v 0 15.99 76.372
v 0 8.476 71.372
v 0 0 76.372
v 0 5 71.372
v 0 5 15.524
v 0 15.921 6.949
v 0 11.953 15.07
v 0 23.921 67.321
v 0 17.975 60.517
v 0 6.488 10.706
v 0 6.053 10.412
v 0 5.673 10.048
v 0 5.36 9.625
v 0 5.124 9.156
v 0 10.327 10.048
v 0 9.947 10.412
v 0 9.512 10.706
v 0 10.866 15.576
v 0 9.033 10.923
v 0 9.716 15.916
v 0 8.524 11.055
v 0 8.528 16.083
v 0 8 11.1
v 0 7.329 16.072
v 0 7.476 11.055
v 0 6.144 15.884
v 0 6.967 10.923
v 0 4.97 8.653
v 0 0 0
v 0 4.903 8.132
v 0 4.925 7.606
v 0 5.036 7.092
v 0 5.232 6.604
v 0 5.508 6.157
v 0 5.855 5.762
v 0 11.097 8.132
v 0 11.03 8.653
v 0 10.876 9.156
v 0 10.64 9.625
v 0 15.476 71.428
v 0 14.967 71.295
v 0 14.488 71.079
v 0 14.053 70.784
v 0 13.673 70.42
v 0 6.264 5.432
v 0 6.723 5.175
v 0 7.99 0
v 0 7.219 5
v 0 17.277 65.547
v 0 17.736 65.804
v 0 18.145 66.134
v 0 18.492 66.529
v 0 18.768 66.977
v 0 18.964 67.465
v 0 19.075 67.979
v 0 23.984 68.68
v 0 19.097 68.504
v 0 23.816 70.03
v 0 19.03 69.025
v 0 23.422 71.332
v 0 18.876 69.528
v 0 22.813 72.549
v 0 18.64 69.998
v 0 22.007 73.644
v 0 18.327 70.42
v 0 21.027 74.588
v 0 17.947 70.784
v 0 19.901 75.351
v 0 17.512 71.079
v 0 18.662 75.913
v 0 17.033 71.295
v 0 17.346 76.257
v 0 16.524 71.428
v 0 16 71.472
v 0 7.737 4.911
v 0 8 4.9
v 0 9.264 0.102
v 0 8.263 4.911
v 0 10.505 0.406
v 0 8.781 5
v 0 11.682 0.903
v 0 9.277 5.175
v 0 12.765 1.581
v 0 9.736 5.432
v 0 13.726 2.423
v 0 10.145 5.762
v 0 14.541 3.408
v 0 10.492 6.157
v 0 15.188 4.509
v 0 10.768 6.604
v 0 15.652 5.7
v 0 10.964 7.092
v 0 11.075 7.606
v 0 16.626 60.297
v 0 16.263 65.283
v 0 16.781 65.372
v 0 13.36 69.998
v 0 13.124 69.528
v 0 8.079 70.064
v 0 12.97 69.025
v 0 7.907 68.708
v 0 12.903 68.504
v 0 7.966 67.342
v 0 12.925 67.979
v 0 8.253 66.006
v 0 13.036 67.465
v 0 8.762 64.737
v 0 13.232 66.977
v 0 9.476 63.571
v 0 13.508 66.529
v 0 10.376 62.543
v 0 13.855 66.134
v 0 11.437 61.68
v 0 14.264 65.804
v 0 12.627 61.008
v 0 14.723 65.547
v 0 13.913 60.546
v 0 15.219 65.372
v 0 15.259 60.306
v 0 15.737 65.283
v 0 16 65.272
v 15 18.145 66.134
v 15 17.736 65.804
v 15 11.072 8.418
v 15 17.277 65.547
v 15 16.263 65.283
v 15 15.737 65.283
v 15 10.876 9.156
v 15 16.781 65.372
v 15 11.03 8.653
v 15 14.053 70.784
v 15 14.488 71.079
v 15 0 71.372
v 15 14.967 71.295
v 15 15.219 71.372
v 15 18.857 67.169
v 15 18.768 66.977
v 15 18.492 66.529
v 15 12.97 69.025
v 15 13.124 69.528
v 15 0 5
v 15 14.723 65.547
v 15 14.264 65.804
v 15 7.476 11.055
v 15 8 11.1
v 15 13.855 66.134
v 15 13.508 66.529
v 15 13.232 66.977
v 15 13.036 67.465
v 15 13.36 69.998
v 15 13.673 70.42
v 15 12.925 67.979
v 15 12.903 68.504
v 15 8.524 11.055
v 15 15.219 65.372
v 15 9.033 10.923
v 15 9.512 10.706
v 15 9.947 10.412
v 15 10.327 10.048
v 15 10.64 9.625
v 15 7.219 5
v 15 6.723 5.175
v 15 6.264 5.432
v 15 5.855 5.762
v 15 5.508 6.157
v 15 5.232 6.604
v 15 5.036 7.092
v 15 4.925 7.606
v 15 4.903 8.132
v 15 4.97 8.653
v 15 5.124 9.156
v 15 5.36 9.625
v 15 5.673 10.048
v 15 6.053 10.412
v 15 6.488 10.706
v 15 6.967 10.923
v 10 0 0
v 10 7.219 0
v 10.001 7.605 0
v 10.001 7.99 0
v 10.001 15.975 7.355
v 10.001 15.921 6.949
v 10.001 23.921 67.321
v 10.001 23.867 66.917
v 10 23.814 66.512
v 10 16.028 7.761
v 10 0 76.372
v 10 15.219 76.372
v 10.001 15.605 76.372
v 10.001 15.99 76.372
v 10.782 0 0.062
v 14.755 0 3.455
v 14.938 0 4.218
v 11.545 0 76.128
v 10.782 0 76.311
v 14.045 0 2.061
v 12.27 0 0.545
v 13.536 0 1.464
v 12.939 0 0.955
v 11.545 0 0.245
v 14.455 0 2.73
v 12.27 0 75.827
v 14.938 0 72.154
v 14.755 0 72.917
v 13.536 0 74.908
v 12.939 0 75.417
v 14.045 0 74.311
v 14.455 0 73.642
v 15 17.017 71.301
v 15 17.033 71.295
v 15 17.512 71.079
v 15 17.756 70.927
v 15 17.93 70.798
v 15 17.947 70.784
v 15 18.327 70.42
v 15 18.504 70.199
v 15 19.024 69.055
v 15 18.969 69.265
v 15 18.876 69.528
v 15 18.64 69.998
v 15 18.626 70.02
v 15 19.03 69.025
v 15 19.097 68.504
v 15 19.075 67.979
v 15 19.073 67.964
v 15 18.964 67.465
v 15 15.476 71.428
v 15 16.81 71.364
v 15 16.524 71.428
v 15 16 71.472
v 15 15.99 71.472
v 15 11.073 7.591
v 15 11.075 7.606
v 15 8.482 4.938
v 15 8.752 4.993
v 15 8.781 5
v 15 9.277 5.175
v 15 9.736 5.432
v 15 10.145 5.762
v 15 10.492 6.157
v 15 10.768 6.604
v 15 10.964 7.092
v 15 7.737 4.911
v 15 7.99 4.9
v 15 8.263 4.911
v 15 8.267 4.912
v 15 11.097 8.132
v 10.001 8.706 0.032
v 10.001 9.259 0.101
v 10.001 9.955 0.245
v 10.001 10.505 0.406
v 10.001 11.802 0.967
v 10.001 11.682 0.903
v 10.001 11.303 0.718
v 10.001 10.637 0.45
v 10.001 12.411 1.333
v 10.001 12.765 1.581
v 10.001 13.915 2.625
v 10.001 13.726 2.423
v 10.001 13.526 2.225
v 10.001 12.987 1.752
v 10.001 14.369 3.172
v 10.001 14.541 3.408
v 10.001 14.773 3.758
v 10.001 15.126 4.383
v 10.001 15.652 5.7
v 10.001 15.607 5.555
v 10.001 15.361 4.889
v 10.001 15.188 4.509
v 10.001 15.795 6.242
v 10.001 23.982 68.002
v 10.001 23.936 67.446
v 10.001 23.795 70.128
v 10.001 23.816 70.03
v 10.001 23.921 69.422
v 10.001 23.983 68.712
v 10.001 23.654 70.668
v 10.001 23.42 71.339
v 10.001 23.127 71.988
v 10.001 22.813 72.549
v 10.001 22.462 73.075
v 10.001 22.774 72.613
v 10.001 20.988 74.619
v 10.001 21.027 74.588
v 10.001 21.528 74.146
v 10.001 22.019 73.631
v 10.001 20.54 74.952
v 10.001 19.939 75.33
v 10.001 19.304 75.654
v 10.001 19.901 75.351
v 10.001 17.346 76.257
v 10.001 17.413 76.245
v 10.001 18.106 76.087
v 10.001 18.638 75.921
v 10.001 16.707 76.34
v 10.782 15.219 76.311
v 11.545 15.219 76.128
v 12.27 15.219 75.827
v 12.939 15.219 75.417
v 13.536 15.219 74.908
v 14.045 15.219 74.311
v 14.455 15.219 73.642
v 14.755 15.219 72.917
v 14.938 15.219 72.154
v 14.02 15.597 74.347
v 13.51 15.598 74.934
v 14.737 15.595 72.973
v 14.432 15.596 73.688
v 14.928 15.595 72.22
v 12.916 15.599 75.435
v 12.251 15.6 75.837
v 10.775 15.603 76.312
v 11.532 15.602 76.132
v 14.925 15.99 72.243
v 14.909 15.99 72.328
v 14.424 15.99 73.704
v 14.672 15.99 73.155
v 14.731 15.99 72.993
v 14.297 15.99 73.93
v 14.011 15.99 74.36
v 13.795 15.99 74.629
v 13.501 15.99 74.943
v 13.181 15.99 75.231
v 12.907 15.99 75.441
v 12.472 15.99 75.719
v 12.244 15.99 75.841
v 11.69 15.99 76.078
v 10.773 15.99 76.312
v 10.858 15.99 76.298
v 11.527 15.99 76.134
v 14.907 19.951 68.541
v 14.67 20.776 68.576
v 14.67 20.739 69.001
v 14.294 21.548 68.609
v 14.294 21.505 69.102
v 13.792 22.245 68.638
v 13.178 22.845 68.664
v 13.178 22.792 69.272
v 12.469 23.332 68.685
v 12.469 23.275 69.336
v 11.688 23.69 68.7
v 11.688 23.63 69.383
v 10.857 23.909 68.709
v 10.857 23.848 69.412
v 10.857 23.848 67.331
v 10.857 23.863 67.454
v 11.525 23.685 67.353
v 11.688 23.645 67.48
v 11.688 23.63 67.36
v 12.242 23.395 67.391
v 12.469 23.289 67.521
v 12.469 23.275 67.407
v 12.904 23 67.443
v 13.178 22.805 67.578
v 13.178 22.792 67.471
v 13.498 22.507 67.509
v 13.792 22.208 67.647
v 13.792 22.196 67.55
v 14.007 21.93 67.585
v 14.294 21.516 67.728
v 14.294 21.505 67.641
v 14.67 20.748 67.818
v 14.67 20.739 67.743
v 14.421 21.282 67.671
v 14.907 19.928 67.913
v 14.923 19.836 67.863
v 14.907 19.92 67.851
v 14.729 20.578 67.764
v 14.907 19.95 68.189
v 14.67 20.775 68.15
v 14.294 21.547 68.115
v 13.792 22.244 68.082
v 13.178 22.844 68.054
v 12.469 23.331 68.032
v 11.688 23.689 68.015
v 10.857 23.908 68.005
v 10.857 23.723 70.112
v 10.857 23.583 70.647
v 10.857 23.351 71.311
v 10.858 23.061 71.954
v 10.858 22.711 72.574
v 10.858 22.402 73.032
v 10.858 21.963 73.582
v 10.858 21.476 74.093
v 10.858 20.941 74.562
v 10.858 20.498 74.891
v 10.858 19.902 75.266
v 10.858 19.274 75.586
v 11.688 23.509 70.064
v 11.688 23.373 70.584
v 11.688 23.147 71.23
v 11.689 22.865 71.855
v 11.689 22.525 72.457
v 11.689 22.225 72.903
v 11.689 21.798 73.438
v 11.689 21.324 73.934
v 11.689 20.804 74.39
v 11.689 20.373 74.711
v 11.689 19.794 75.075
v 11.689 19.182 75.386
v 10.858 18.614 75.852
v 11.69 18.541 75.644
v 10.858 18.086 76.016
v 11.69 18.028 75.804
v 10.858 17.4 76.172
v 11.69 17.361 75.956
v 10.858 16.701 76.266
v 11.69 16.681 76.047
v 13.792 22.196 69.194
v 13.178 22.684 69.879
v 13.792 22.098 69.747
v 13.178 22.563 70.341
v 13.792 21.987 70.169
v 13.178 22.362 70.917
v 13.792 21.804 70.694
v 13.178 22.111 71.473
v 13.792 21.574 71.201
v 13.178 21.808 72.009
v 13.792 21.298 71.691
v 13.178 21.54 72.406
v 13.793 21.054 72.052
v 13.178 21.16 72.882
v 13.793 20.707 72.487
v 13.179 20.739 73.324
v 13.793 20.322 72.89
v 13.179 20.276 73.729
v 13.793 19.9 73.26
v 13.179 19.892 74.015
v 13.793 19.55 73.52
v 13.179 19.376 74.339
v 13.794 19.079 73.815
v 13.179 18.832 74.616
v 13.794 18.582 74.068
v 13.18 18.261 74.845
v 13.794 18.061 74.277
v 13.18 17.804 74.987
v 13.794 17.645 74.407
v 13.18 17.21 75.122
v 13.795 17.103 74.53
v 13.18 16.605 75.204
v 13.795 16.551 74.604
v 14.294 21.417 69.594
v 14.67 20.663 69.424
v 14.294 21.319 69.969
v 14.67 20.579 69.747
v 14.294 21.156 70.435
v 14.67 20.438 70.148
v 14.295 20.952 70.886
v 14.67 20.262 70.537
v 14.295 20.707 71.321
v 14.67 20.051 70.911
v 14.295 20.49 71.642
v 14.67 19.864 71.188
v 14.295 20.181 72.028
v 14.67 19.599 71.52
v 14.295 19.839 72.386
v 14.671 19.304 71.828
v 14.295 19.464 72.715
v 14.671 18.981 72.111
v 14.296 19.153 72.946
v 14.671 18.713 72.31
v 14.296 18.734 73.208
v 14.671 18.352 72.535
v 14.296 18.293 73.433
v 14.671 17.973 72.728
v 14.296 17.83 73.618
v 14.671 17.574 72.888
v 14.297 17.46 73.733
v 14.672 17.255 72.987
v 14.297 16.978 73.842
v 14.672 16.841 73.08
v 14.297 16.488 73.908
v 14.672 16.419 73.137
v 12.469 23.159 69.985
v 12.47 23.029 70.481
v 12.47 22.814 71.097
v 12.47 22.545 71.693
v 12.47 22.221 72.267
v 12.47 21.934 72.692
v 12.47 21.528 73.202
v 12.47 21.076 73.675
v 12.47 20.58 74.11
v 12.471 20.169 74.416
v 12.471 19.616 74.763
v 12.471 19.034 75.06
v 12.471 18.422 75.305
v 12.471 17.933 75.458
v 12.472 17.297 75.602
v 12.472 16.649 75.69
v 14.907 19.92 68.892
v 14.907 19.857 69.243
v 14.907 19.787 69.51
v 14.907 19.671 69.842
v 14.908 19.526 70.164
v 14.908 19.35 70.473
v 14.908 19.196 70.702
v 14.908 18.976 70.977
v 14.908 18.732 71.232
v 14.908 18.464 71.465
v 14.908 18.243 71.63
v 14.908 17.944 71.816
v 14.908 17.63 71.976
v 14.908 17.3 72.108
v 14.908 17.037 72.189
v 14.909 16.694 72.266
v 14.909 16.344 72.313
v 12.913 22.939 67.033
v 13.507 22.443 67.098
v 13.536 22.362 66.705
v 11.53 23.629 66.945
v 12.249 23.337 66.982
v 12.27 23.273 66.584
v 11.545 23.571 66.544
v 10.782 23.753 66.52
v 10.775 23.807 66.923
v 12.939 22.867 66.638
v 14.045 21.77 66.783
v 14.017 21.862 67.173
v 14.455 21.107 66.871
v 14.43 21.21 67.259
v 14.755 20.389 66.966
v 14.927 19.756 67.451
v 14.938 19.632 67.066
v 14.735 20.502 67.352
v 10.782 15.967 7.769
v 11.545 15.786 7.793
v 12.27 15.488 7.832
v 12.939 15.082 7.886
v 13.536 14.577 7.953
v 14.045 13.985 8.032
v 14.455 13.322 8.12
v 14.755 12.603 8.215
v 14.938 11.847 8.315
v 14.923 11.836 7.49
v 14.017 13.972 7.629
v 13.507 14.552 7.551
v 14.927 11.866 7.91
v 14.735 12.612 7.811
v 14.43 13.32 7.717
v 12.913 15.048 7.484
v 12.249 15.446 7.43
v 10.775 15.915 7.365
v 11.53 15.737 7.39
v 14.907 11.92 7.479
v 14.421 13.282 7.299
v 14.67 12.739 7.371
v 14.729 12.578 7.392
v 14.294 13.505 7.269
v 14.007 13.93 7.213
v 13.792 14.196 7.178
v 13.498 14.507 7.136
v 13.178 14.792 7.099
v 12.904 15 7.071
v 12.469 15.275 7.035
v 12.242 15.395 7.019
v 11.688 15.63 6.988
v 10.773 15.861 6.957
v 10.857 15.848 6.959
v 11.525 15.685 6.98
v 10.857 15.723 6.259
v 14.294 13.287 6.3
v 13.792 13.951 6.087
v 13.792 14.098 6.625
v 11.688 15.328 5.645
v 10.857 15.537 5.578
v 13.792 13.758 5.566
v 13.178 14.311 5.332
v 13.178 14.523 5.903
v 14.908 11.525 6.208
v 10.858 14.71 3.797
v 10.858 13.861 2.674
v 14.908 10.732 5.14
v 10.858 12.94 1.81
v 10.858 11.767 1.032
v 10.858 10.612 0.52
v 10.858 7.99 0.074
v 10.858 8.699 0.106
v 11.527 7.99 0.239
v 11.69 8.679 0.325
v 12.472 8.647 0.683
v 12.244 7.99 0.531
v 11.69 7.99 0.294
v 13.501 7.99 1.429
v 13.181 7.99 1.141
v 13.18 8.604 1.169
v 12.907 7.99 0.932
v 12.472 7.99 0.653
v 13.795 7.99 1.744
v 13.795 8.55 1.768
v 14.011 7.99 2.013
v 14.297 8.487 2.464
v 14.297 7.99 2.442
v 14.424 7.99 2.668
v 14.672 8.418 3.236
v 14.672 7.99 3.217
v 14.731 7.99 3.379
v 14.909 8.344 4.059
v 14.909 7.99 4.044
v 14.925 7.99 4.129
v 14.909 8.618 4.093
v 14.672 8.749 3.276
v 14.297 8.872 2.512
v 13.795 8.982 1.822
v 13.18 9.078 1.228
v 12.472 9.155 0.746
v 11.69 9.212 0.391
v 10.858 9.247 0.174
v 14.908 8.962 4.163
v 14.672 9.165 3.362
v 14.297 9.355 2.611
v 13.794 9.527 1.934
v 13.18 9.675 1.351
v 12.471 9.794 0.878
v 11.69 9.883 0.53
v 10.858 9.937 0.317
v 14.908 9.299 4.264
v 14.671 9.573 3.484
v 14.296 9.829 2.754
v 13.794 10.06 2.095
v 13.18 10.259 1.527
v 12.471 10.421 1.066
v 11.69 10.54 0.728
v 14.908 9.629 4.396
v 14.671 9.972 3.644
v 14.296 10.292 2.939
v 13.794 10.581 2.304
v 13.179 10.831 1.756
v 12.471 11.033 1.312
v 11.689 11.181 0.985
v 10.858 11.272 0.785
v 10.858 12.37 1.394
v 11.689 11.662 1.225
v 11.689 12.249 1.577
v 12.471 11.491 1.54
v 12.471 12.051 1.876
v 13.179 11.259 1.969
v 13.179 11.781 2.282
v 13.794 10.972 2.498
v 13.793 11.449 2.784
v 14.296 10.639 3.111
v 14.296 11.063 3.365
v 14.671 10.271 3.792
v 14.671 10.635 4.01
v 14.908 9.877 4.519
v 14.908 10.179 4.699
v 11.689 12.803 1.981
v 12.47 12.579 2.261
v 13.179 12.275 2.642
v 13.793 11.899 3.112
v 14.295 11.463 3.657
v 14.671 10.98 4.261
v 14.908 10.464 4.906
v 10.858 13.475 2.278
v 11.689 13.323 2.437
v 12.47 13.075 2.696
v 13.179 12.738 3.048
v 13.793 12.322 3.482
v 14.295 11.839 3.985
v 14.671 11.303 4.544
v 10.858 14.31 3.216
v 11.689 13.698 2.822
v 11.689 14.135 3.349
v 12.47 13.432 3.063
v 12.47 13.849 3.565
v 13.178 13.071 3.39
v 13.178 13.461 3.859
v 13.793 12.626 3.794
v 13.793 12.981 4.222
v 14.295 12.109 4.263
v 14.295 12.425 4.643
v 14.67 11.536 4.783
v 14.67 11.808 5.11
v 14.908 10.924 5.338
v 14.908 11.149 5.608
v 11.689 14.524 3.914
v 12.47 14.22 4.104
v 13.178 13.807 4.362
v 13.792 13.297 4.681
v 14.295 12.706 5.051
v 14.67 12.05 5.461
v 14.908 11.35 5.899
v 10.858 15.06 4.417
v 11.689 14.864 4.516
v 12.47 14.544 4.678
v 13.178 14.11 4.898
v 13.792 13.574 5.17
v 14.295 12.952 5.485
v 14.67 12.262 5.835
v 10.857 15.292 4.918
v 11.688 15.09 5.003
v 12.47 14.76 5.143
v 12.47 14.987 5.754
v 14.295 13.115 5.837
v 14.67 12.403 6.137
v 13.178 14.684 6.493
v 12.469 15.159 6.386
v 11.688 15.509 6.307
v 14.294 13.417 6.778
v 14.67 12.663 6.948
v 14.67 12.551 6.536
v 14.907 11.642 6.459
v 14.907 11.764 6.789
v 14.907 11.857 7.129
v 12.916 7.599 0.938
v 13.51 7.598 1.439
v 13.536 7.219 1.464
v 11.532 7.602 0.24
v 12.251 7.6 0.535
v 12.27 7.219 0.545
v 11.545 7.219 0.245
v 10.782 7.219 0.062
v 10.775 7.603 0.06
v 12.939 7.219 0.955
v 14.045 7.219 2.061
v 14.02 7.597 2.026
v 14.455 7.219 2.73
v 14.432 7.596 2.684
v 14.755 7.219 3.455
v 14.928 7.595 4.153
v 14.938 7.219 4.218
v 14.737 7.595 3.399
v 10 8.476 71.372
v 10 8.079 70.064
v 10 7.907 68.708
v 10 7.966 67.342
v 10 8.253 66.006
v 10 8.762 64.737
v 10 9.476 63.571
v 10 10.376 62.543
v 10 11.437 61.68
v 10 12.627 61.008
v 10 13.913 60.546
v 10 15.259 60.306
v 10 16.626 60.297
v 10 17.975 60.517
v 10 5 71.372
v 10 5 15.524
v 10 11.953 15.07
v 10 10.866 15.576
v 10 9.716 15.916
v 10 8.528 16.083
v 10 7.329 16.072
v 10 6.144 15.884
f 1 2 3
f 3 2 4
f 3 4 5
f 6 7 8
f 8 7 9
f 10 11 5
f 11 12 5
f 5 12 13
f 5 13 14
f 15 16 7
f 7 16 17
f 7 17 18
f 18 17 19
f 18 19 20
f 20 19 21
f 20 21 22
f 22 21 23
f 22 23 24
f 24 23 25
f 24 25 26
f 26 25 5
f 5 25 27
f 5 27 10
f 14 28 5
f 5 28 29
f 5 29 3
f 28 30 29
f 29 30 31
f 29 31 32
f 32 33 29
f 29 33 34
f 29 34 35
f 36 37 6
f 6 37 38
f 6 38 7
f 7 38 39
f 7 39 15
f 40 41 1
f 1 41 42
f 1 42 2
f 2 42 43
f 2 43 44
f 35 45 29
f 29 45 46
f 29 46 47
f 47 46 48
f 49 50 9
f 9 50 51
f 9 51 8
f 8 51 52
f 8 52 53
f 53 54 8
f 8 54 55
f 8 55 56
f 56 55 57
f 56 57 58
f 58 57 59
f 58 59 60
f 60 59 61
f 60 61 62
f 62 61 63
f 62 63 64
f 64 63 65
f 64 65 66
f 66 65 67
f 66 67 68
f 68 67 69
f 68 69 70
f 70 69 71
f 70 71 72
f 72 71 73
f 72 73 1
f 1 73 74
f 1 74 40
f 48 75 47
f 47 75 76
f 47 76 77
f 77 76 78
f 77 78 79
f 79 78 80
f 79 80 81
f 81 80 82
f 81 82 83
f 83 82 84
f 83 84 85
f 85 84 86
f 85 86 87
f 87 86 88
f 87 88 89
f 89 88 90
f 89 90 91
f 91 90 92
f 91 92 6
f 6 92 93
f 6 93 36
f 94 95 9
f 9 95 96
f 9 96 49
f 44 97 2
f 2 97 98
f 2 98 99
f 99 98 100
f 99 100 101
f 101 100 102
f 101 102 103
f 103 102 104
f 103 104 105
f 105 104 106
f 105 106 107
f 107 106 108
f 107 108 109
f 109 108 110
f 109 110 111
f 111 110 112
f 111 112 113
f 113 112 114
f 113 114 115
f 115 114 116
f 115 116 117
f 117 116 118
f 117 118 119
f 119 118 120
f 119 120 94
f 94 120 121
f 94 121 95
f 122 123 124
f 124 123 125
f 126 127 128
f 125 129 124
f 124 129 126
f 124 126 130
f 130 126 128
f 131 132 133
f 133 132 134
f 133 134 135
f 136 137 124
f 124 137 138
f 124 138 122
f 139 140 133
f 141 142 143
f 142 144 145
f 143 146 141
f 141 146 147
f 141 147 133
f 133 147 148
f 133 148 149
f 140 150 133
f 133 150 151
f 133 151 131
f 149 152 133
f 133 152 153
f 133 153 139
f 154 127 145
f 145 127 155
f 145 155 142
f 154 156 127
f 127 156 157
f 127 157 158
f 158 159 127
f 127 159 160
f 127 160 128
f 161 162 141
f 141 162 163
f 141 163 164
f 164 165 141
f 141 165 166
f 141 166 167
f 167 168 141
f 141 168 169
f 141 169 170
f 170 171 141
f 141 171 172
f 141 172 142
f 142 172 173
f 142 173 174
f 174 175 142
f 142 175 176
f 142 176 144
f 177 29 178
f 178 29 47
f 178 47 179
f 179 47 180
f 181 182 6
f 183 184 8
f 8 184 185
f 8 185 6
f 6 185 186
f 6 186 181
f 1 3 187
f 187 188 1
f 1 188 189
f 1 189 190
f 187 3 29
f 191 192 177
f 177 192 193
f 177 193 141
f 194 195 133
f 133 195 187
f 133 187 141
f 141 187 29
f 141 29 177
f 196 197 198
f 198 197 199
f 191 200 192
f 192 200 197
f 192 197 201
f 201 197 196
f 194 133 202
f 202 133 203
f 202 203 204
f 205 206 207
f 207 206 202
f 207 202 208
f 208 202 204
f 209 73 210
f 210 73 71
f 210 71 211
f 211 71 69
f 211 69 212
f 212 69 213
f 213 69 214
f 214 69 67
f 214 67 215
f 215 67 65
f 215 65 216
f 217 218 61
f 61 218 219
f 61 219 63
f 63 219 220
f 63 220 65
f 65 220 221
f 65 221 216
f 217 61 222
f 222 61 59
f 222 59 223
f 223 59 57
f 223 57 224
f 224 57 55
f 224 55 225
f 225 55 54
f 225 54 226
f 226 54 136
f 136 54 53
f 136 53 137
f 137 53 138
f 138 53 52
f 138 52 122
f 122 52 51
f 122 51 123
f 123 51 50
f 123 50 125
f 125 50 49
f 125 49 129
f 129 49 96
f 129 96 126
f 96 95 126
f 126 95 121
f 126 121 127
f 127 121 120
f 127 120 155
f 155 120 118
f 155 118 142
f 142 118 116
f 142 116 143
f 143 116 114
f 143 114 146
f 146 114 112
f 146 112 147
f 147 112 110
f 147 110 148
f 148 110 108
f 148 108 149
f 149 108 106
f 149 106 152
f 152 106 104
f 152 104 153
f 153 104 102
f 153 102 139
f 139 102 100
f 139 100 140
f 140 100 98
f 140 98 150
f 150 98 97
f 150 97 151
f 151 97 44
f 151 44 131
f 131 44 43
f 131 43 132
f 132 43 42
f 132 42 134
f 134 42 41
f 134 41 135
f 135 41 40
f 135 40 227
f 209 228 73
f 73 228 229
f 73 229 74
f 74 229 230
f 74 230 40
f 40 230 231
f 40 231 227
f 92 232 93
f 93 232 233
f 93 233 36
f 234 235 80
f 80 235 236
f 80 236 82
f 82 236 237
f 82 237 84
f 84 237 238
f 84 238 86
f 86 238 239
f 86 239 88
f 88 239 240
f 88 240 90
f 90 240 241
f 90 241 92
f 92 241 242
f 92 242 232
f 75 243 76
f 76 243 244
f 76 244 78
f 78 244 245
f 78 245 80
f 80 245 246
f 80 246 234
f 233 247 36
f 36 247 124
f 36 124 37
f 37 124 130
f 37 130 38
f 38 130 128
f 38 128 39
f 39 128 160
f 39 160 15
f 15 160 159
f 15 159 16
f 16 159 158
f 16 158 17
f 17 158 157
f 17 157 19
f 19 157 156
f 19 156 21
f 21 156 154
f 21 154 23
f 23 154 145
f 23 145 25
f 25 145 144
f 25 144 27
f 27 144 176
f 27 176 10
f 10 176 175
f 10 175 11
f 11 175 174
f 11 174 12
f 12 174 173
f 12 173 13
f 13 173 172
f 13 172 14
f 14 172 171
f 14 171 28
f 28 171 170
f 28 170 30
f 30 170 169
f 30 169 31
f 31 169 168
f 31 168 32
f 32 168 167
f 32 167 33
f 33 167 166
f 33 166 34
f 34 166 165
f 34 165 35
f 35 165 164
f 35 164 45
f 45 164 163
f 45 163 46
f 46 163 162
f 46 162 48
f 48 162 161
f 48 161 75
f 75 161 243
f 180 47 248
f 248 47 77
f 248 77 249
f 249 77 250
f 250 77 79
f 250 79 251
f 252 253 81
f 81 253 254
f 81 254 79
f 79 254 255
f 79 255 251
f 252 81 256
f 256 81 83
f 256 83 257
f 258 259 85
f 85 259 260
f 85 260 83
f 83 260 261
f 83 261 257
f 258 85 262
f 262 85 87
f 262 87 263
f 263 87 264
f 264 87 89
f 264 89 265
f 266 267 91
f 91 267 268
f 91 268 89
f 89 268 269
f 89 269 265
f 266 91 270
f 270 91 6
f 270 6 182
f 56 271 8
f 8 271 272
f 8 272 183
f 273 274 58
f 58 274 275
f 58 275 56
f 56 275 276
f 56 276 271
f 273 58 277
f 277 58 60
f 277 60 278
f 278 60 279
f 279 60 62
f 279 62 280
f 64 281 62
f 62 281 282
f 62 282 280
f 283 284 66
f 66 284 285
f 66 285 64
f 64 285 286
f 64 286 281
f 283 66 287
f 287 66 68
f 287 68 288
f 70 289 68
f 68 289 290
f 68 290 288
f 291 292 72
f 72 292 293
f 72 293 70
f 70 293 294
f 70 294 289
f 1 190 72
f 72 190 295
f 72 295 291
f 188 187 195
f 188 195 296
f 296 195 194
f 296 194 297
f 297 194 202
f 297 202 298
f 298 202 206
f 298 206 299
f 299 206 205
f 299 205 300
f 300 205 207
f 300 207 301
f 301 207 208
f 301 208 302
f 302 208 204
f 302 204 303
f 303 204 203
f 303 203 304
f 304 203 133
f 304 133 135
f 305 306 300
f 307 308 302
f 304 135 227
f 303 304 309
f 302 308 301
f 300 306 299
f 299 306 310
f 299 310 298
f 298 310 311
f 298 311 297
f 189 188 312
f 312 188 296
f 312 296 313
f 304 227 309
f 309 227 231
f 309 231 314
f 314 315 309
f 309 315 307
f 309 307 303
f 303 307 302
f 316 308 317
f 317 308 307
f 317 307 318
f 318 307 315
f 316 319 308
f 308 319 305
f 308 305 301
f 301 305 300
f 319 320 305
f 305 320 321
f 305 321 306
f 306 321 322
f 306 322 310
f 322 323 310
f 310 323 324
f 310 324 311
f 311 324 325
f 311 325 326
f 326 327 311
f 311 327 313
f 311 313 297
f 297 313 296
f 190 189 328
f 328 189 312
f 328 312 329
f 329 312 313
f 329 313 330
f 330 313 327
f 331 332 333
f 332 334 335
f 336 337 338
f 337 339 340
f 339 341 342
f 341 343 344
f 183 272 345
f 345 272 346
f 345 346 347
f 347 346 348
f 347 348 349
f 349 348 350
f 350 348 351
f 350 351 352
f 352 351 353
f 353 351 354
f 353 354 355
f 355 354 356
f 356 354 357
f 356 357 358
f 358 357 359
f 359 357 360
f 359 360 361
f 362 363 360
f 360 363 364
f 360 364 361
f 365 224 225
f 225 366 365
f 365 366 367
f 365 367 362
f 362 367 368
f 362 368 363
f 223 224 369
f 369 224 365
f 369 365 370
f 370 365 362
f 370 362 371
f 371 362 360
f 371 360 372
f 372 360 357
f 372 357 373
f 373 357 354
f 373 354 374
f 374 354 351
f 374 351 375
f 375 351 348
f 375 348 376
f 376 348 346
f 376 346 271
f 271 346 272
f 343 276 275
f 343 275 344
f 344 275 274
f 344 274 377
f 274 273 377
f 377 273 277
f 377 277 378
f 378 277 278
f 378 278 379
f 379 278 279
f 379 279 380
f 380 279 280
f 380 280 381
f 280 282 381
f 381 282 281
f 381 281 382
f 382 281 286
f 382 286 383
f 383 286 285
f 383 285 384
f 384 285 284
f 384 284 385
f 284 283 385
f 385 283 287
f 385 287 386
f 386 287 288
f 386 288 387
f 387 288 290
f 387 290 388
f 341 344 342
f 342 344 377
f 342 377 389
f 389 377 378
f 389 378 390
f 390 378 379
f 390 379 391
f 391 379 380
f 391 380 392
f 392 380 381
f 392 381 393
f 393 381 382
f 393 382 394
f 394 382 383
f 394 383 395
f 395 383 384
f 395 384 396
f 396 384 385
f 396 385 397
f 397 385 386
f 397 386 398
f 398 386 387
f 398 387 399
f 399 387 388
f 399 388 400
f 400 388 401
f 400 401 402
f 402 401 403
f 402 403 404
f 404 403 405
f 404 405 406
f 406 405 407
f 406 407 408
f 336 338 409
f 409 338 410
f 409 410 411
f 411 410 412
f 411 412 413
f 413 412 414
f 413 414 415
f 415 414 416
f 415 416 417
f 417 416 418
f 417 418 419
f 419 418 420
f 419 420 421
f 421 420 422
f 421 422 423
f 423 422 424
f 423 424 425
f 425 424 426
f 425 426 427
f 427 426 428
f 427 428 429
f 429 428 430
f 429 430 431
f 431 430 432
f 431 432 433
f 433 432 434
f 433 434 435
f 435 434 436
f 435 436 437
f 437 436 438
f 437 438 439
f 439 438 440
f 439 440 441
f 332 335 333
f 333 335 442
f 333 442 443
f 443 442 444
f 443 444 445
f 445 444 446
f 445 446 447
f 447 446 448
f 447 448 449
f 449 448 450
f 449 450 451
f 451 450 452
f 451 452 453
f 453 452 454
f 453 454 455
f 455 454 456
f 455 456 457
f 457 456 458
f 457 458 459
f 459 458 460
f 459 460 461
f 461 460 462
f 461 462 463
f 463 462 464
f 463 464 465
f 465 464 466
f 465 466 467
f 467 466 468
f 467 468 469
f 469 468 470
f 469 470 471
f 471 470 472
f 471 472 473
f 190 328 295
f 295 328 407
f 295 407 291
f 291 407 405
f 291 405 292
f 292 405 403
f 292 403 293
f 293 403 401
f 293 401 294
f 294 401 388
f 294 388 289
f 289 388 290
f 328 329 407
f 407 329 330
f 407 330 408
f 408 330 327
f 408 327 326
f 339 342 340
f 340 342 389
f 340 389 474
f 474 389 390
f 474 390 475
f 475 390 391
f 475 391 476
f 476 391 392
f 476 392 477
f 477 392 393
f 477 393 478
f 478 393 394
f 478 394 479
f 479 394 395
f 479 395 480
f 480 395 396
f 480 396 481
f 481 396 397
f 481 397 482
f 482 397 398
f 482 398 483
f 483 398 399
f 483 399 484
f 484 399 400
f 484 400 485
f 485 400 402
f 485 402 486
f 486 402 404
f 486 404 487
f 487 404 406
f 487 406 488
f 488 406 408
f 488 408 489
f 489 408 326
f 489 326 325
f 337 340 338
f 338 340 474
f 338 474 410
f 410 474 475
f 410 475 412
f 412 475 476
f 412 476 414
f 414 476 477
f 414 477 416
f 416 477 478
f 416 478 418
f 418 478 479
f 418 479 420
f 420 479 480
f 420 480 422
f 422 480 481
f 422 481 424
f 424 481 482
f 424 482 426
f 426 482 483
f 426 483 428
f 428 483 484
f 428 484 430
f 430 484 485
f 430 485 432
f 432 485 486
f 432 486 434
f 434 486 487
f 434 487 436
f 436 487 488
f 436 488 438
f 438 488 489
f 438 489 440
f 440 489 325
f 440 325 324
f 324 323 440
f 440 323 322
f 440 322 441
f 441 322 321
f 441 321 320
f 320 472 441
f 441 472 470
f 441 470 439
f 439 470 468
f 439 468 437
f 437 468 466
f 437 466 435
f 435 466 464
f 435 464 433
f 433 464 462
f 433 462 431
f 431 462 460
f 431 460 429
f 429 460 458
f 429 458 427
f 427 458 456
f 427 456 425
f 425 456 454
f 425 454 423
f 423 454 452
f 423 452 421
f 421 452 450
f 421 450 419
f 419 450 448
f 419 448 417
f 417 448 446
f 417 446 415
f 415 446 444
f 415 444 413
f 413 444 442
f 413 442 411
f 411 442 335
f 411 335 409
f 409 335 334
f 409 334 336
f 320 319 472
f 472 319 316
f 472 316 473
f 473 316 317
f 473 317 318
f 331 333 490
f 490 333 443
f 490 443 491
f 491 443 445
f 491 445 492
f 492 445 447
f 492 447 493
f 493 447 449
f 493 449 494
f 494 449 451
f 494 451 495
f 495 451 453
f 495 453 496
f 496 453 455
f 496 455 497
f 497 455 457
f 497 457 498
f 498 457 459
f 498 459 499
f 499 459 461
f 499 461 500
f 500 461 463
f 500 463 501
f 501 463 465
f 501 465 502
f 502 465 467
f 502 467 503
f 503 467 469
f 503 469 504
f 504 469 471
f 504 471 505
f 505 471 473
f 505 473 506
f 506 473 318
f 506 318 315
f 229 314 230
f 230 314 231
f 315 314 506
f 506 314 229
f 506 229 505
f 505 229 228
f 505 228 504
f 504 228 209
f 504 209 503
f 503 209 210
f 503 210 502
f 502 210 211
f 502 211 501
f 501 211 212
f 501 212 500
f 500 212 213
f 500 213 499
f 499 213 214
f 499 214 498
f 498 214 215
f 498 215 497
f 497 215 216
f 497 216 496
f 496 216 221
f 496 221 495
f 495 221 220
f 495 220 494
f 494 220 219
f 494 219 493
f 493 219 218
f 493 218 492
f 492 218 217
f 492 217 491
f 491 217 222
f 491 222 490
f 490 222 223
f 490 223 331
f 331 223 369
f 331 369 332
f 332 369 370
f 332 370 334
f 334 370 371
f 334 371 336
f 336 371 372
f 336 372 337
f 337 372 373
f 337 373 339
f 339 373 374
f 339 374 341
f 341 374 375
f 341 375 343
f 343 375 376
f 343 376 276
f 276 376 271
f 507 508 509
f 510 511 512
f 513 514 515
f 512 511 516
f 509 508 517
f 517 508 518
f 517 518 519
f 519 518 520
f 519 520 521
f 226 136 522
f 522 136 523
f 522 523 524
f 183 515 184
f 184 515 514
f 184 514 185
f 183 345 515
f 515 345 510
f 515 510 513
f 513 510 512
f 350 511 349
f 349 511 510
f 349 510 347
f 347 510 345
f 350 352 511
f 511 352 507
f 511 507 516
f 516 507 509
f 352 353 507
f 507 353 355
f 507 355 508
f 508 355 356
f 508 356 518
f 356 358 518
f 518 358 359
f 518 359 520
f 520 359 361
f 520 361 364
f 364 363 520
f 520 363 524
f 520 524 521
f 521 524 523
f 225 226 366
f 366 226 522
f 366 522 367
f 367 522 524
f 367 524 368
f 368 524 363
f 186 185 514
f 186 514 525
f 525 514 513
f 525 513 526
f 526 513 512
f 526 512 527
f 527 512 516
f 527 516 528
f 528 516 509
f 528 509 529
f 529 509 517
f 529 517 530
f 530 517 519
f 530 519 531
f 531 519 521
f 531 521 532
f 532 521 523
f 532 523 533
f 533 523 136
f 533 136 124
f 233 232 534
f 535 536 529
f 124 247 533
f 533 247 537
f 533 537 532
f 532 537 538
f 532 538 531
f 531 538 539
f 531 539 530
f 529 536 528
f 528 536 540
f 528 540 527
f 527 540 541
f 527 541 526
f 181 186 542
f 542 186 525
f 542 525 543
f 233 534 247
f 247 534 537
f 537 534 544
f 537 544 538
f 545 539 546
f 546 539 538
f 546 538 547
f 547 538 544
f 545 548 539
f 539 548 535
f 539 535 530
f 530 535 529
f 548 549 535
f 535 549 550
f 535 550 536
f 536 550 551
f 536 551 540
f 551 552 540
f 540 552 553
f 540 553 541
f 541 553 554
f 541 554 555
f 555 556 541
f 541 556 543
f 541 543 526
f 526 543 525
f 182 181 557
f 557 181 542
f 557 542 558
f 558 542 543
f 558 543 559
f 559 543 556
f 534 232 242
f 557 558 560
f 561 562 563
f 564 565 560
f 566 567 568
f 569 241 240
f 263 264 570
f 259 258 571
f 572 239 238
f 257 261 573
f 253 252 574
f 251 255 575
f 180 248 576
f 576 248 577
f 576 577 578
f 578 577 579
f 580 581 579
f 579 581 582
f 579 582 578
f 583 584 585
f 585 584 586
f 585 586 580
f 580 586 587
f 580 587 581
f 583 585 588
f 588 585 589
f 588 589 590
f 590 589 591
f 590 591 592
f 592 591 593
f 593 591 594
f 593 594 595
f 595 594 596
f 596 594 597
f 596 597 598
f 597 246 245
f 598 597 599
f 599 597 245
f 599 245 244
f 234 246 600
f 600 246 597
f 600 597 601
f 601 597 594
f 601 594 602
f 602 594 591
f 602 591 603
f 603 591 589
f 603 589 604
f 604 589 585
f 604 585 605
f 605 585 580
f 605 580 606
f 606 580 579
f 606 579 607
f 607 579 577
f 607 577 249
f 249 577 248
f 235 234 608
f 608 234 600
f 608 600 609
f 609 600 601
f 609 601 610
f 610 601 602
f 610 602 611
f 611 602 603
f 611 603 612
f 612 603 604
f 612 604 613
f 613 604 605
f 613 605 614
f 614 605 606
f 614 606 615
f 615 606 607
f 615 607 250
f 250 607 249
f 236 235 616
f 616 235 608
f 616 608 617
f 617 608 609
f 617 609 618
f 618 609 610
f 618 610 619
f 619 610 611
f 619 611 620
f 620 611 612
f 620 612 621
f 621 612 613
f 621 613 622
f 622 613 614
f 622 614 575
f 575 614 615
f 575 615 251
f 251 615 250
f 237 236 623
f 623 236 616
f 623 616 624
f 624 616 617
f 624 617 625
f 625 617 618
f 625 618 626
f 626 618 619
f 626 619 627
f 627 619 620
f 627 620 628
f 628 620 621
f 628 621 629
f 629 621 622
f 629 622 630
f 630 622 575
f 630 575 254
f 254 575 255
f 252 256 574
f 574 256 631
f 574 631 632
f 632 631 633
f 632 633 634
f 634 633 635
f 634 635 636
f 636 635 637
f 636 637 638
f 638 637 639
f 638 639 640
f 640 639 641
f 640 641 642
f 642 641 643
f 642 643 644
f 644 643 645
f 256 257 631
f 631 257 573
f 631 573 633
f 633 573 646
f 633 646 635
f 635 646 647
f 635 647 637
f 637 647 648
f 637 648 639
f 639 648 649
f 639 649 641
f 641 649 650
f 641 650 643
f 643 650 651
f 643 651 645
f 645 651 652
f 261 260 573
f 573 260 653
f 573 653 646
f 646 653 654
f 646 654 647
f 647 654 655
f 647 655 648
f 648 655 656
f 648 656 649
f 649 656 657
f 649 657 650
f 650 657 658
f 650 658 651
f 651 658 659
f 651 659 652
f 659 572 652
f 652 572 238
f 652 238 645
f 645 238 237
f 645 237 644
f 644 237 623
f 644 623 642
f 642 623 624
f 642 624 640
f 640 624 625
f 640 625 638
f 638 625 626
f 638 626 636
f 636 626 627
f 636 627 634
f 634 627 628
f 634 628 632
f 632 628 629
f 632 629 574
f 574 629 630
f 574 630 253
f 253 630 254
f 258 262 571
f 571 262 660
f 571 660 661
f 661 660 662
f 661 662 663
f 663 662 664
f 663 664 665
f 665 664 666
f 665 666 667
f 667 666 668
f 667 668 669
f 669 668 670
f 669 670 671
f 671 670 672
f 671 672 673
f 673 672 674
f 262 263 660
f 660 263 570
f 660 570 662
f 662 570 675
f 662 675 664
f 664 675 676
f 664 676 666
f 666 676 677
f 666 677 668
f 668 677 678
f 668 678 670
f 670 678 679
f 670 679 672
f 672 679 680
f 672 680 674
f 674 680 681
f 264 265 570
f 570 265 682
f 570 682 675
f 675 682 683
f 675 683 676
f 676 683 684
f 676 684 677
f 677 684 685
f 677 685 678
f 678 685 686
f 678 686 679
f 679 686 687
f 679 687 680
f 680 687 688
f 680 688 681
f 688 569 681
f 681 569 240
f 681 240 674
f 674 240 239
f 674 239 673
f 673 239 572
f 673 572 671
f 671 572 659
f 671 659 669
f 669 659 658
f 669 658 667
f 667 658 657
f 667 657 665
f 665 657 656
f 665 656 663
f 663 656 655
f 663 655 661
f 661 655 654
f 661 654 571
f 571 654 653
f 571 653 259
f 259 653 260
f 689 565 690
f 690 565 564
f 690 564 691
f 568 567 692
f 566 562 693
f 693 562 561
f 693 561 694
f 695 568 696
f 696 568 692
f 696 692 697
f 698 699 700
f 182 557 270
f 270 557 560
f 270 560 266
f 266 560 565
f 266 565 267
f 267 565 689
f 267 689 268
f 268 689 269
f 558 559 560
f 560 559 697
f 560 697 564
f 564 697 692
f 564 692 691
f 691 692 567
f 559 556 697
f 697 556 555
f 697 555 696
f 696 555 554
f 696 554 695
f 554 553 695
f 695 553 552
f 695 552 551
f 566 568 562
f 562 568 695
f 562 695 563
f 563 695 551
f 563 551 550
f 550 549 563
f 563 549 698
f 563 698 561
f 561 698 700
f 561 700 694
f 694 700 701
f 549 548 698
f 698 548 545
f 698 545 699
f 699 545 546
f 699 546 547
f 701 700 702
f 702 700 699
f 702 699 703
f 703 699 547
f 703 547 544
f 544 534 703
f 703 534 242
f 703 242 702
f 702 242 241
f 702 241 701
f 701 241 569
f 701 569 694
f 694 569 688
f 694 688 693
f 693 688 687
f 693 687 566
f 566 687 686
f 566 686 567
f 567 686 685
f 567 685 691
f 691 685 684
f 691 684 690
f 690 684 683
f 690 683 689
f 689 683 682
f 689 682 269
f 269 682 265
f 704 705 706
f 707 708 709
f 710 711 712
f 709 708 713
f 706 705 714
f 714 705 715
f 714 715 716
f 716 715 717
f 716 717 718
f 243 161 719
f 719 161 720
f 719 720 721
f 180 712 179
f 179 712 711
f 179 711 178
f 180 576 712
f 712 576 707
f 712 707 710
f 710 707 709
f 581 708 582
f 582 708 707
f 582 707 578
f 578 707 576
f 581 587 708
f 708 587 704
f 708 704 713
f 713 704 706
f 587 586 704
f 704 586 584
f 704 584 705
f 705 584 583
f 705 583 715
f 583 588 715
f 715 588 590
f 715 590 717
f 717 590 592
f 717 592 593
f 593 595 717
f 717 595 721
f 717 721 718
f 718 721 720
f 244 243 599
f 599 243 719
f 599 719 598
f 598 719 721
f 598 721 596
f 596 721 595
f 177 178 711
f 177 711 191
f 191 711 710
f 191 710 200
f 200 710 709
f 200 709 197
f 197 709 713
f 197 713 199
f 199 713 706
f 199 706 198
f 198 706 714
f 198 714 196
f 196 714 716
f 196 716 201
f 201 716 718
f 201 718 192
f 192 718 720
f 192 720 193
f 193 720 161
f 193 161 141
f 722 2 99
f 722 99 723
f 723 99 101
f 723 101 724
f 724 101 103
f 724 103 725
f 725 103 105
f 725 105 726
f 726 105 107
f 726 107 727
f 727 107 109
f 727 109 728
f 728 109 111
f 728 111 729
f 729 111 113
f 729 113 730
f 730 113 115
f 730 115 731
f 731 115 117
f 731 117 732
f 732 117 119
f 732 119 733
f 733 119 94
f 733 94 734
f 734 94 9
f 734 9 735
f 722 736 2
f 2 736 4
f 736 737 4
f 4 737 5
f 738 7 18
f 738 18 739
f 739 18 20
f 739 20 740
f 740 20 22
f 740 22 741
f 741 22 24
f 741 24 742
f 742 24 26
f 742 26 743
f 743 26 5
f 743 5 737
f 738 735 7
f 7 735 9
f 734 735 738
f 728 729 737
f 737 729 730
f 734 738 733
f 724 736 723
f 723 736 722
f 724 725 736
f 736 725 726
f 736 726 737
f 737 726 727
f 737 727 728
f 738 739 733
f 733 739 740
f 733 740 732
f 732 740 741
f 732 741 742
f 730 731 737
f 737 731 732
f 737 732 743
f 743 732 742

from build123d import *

# Parameters (mm, degrees)
ESQUISSE1_R             = 3.1
BOSS_EXTRU_1_DEPTH      = 15
CONG_1_R                = 8
CONG_2_R                = 5
ENL_V_MAT_EXTRU_1_DEPTH = 10


with BuildPart() as part:
    # Esquisse1 → Boss.-Extru.1 (new body)
    with BuildSketch(Plane(origin=(0, 0, 0), x_dir=(0, 0, -1), z_dir=(1, 0, 0))):
        Polygon((0, 0), (-76.372261843, 0), (-76.372261843, 25.120178971), (0, 15), align=None)
        with Locations((-68.372261843, 16)):
            Circle(ESQUISSE1_R, mode=Mode.SUBTRACT)
        with Locations((-8, 8)):
            Circle(ESQUISSE1_R, mode=Mode.SUBTRACT)
    extrude(amount=BOSS_EXTRU_1_DEPTH)

    # Congé1
    cong_1_edges = [part.edges().sort_by_distance(p)[0] for p in [
        (7.5, 25.120178971, 76.372261843),
        (7.5, 15, 0),
    ]]
    fillet(cong_1_edges, radius=CONG_1_R)

    # Congé2
    cong_2_edges = [part.edges().sort_by_distance(p)[0] for p in [
        (15, 3.995079138, 0),
        (15, 7.995079138, 76.372261843),
        (15, 19.920833067, 37.135227801),
    ]]
    fillet(cong_2_edges, radius=CONG_2_R)

    # Esquisse2 → Enlèv. mat.-Extru.1 (cut)
    with BuildSketch(Plane.ZY):
        with BuildLine():
            ThreePointArc((60.51684394, 17.97545174), (63.038081045, 9.904385575), (71.372261843, 8.476038278))
            Line((71.372261843, 8.476038278), (71.372261843, 5))
            Line((71.372261843, 5), (15.523961722, 5))
            ThreePointArc((15.523961722, 5), (16.082776909, 8.52793697), (15.069803831, 11.953210568))
            Line((15.069803831, 11.953210568), (60.51684394, 17.97545174))
        make_face()
    extrude(amount=-ENL_V_MAT_EXTRU_1_DEPTH, mode=Mode.SUBTRACT)


solid = part.part
